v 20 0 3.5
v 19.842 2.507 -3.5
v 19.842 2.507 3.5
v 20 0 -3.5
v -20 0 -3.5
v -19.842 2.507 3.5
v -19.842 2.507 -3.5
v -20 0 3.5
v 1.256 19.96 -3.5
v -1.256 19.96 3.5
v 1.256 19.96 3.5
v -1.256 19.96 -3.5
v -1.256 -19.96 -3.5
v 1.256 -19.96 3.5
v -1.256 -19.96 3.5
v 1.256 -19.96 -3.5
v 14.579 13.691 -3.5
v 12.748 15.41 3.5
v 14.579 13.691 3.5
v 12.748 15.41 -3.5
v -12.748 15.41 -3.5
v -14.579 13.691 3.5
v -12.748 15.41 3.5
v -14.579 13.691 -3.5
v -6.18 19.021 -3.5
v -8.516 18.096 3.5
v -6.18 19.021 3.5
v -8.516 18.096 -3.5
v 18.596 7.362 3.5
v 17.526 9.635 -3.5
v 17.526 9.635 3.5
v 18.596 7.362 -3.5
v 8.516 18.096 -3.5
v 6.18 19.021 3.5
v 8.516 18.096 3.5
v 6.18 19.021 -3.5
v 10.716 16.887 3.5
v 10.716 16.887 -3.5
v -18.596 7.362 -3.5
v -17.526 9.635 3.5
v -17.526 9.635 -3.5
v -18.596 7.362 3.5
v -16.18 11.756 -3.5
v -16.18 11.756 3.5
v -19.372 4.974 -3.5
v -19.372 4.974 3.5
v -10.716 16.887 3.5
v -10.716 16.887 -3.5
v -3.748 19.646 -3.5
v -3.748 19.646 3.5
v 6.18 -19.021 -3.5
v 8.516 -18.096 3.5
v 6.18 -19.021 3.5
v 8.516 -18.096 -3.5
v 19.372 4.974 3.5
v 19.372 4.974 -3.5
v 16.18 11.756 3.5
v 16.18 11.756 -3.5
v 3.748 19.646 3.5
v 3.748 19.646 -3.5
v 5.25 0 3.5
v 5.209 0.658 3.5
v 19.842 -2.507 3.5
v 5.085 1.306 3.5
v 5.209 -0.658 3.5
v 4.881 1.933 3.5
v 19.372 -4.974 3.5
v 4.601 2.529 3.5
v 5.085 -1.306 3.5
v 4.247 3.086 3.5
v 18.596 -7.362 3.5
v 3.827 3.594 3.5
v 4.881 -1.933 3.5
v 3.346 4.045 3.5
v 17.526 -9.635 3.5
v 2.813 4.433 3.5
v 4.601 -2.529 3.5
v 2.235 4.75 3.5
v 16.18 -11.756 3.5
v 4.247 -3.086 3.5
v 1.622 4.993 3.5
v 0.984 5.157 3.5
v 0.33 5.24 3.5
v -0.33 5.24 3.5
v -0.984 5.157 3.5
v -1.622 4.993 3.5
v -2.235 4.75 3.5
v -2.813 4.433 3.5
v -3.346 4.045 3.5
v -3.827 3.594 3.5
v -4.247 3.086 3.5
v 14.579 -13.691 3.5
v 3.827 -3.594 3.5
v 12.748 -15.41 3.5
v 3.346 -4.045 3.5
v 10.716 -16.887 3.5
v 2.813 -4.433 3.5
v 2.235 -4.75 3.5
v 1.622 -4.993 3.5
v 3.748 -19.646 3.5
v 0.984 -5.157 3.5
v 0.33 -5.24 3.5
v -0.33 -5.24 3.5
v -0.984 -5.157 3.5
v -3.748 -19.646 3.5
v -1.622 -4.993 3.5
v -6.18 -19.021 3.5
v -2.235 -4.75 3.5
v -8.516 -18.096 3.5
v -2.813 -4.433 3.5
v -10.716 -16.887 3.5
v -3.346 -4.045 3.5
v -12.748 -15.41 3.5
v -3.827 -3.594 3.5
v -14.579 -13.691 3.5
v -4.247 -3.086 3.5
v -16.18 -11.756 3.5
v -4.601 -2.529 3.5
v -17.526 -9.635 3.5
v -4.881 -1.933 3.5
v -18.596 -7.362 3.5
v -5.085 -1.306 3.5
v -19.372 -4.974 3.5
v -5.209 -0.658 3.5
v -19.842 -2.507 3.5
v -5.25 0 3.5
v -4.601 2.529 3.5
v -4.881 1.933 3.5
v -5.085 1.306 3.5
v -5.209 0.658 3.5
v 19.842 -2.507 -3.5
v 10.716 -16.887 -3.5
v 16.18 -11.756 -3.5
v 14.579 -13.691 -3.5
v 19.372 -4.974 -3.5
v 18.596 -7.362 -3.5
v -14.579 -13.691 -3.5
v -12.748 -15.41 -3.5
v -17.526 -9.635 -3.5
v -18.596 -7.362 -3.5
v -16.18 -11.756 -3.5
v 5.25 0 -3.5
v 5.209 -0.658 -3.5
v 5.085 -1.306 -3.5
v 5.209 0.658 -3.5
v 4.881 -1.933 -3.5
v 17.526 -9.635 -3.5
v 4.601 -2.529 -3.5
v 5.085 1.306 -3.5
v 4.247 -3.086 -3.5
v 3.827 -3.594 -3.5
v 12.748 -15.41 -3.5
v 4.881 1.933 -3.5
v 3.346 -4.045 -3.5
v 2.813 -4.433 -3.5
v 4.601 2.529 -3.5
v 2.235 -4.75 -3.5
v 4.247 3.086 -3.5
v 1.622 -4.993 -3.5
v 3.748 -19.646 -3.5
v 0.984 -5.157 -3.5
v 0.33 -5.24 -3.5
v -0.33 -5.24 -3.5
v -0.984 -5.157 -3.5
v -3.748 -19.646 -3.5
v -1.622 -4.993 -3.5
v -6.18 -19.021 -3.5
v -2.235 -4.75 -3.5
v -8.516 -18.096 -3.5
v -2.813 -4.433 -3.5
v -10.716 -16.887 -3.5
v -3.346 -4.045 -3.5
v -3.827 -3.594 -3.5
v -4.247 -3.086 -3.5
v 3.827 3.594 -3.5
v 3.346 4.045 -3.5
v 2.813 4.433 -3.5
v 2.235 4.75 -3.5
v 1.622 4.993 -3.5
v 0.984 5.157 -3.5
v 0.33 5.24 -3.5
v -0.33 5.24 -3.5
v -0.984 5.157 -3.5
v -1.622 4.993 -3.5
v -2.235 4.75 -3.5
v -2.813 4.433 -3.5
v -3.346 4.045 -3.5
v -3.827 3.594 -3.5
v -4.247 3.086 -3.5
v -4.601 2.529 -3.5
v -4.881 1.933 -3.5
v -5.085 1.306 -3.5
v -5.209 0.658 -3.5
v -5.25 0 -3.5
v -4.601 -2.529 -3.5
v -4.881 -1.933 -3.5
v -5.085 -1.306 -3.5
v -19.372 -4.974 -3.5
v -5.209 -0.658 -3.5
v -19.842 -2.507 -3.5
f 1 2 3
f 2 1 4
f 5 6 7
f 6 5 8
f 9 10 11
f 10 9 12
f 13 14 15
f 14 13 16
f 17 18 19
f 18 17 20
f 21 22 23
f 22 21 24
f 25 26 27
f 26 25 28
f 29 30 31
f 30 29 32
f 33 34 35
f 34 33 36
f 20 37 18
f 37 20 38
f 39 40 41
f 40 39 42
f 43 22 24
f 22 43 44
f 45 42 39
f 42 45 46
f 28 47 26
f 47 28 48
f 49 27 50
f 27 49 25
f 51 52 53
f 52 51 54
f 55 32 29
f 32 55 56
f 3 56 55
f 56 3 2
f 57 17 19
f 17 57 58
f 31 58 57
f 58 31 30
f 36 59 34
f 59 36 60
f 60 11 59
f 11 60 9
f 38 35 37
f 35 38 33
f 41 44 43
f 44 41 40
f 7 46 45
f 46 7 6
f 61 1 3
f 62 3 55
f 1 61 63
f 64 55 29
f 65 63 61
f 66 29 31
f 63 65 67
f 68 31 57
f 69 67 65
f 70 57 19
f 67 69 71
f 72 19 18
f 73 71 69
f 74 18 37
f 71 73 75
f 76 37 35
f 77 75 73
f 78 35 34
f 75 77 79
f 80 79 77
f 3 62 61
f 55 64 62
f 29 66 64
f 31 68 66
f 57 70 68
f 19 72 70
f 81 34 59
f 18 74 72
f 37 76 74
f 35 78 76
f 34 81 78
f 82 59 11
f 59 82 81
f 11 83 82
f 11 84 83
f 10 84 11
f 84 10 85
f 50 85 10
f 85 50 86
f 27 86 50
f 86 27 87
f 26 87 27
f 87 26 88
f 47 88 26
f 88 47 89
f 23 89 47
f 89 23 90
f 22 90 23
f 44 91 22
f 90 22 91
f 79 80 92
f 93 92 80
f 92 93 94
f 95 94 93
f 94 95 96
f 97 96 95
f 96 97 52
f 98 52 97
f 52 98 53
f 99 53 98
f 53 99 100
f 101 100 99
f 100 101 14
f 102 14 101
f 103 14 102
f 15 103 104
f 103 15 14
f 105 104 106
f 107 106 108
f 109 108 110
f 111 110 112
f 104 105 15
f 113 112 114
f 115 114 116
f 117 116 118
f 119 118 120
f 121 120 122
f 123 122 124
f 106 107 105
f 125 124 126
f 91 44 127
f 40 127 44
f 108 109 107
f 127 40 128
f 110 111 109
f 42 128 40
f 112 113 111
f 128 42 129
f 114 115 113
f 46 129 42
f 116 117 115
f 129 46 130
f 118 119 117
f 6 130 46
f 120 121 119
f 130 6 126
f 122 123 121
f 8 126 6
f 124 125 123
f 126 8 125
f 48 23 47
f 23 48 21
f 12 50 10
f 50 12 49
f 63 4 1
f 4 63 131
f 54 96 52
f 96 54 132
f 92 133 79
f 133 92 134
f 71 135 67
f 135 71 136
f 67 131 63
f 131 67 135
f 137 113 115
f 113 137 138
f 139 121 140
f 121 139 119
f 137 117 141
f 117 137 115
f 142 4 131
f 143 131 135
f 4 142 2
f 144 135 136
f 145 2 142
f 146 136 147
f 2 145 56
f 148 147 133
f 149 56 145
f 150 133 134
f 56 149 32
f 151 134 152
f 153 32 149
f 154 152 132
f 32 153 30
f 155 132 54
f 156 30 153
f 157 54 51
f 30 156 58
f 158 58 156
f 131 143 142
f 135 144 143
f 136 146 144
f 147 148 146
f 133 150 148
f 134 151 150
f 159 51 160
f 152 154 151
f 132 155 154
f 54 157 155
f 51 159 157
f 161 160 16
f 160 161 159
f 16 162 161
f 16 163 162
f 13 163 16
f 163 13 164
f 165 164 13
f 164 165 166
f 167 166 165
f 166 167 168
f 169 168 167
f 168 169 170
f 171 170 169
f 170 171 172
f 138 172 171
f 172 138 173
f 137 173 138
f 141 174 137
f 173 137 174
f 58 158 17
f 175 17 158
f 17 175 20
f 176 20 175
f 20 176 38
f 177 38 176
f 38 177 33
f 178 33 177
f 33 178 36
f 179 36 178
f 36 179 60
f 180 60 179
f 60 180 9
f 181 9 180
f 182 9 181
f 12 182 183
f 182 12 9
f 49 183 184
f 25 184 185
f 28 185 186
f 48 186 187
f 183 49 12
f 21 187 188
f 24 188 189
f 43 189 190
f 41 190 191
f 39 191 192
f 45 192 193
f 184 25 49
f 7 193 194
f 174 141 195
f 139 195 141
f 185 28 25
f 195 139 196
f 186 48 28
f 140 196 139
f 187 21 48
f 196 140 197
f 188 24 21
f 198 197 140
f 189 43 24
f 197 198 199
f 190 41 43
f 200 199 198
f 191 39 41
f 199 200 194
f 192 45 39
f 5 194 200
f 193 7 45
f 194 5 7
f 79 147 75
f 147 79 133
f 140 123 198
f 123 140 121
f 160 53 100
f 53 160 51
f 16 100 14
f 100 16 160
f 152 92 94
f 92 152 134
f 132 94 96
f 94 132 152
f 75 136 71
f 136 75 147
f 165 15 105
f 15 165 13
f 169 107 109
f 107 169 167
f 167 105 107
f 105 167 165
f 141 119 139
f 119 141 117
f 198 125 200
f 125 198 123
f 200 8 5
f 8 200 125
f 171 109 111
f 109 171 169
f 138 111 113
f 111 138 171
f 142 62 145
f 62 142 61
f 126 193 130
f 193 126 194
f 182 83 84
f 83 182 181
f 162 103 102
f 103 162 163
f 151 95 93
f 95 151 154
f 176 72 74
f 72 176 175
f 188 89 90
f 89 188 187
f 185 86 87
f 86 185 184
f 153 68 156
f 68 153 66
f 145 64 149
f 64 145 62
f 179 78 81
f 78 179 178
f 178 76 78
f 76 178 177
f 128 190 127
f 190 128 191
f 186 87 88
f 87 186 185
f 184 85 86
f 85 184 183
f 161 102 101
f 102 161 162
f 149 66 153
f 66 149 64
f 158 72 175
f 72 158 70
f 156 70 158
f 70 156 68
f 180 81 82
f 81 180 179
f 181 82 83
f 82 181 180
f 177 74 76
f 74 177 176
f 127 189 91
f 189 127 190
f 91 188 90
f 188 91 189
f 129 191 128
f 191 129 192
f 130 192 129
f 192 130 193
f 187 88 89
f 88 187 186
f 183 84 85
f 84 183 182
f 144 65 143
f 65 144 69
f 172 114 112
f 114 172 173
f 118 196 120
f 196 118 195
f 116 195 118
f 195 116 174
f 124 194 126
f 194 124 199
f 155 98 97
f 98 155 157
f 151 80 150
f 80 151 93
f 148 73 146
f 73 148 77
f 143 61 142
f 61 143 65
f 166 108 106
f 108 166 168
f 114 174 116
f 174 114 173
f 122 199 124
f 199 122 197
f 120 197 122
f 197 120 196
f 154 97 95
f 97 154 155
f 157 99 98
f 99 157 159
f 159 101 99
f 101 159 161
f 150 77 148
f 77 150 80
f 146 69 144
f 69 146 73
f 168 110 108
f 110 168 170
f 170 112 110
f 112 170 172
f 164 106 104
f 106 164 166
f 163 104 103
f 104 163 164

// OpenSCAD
$fn = 50;


difference() {
	union() {
		translate(v = [0, 0, -3.5000000000]) {
			cylinder(h = 7, r = 20.0000000000);
		}
	}
	union() {
		translate(v = [0, 0, -100.0000000000]) {
			cylinder(h = 200, r = 5.2500000000);
		}
	}
}
